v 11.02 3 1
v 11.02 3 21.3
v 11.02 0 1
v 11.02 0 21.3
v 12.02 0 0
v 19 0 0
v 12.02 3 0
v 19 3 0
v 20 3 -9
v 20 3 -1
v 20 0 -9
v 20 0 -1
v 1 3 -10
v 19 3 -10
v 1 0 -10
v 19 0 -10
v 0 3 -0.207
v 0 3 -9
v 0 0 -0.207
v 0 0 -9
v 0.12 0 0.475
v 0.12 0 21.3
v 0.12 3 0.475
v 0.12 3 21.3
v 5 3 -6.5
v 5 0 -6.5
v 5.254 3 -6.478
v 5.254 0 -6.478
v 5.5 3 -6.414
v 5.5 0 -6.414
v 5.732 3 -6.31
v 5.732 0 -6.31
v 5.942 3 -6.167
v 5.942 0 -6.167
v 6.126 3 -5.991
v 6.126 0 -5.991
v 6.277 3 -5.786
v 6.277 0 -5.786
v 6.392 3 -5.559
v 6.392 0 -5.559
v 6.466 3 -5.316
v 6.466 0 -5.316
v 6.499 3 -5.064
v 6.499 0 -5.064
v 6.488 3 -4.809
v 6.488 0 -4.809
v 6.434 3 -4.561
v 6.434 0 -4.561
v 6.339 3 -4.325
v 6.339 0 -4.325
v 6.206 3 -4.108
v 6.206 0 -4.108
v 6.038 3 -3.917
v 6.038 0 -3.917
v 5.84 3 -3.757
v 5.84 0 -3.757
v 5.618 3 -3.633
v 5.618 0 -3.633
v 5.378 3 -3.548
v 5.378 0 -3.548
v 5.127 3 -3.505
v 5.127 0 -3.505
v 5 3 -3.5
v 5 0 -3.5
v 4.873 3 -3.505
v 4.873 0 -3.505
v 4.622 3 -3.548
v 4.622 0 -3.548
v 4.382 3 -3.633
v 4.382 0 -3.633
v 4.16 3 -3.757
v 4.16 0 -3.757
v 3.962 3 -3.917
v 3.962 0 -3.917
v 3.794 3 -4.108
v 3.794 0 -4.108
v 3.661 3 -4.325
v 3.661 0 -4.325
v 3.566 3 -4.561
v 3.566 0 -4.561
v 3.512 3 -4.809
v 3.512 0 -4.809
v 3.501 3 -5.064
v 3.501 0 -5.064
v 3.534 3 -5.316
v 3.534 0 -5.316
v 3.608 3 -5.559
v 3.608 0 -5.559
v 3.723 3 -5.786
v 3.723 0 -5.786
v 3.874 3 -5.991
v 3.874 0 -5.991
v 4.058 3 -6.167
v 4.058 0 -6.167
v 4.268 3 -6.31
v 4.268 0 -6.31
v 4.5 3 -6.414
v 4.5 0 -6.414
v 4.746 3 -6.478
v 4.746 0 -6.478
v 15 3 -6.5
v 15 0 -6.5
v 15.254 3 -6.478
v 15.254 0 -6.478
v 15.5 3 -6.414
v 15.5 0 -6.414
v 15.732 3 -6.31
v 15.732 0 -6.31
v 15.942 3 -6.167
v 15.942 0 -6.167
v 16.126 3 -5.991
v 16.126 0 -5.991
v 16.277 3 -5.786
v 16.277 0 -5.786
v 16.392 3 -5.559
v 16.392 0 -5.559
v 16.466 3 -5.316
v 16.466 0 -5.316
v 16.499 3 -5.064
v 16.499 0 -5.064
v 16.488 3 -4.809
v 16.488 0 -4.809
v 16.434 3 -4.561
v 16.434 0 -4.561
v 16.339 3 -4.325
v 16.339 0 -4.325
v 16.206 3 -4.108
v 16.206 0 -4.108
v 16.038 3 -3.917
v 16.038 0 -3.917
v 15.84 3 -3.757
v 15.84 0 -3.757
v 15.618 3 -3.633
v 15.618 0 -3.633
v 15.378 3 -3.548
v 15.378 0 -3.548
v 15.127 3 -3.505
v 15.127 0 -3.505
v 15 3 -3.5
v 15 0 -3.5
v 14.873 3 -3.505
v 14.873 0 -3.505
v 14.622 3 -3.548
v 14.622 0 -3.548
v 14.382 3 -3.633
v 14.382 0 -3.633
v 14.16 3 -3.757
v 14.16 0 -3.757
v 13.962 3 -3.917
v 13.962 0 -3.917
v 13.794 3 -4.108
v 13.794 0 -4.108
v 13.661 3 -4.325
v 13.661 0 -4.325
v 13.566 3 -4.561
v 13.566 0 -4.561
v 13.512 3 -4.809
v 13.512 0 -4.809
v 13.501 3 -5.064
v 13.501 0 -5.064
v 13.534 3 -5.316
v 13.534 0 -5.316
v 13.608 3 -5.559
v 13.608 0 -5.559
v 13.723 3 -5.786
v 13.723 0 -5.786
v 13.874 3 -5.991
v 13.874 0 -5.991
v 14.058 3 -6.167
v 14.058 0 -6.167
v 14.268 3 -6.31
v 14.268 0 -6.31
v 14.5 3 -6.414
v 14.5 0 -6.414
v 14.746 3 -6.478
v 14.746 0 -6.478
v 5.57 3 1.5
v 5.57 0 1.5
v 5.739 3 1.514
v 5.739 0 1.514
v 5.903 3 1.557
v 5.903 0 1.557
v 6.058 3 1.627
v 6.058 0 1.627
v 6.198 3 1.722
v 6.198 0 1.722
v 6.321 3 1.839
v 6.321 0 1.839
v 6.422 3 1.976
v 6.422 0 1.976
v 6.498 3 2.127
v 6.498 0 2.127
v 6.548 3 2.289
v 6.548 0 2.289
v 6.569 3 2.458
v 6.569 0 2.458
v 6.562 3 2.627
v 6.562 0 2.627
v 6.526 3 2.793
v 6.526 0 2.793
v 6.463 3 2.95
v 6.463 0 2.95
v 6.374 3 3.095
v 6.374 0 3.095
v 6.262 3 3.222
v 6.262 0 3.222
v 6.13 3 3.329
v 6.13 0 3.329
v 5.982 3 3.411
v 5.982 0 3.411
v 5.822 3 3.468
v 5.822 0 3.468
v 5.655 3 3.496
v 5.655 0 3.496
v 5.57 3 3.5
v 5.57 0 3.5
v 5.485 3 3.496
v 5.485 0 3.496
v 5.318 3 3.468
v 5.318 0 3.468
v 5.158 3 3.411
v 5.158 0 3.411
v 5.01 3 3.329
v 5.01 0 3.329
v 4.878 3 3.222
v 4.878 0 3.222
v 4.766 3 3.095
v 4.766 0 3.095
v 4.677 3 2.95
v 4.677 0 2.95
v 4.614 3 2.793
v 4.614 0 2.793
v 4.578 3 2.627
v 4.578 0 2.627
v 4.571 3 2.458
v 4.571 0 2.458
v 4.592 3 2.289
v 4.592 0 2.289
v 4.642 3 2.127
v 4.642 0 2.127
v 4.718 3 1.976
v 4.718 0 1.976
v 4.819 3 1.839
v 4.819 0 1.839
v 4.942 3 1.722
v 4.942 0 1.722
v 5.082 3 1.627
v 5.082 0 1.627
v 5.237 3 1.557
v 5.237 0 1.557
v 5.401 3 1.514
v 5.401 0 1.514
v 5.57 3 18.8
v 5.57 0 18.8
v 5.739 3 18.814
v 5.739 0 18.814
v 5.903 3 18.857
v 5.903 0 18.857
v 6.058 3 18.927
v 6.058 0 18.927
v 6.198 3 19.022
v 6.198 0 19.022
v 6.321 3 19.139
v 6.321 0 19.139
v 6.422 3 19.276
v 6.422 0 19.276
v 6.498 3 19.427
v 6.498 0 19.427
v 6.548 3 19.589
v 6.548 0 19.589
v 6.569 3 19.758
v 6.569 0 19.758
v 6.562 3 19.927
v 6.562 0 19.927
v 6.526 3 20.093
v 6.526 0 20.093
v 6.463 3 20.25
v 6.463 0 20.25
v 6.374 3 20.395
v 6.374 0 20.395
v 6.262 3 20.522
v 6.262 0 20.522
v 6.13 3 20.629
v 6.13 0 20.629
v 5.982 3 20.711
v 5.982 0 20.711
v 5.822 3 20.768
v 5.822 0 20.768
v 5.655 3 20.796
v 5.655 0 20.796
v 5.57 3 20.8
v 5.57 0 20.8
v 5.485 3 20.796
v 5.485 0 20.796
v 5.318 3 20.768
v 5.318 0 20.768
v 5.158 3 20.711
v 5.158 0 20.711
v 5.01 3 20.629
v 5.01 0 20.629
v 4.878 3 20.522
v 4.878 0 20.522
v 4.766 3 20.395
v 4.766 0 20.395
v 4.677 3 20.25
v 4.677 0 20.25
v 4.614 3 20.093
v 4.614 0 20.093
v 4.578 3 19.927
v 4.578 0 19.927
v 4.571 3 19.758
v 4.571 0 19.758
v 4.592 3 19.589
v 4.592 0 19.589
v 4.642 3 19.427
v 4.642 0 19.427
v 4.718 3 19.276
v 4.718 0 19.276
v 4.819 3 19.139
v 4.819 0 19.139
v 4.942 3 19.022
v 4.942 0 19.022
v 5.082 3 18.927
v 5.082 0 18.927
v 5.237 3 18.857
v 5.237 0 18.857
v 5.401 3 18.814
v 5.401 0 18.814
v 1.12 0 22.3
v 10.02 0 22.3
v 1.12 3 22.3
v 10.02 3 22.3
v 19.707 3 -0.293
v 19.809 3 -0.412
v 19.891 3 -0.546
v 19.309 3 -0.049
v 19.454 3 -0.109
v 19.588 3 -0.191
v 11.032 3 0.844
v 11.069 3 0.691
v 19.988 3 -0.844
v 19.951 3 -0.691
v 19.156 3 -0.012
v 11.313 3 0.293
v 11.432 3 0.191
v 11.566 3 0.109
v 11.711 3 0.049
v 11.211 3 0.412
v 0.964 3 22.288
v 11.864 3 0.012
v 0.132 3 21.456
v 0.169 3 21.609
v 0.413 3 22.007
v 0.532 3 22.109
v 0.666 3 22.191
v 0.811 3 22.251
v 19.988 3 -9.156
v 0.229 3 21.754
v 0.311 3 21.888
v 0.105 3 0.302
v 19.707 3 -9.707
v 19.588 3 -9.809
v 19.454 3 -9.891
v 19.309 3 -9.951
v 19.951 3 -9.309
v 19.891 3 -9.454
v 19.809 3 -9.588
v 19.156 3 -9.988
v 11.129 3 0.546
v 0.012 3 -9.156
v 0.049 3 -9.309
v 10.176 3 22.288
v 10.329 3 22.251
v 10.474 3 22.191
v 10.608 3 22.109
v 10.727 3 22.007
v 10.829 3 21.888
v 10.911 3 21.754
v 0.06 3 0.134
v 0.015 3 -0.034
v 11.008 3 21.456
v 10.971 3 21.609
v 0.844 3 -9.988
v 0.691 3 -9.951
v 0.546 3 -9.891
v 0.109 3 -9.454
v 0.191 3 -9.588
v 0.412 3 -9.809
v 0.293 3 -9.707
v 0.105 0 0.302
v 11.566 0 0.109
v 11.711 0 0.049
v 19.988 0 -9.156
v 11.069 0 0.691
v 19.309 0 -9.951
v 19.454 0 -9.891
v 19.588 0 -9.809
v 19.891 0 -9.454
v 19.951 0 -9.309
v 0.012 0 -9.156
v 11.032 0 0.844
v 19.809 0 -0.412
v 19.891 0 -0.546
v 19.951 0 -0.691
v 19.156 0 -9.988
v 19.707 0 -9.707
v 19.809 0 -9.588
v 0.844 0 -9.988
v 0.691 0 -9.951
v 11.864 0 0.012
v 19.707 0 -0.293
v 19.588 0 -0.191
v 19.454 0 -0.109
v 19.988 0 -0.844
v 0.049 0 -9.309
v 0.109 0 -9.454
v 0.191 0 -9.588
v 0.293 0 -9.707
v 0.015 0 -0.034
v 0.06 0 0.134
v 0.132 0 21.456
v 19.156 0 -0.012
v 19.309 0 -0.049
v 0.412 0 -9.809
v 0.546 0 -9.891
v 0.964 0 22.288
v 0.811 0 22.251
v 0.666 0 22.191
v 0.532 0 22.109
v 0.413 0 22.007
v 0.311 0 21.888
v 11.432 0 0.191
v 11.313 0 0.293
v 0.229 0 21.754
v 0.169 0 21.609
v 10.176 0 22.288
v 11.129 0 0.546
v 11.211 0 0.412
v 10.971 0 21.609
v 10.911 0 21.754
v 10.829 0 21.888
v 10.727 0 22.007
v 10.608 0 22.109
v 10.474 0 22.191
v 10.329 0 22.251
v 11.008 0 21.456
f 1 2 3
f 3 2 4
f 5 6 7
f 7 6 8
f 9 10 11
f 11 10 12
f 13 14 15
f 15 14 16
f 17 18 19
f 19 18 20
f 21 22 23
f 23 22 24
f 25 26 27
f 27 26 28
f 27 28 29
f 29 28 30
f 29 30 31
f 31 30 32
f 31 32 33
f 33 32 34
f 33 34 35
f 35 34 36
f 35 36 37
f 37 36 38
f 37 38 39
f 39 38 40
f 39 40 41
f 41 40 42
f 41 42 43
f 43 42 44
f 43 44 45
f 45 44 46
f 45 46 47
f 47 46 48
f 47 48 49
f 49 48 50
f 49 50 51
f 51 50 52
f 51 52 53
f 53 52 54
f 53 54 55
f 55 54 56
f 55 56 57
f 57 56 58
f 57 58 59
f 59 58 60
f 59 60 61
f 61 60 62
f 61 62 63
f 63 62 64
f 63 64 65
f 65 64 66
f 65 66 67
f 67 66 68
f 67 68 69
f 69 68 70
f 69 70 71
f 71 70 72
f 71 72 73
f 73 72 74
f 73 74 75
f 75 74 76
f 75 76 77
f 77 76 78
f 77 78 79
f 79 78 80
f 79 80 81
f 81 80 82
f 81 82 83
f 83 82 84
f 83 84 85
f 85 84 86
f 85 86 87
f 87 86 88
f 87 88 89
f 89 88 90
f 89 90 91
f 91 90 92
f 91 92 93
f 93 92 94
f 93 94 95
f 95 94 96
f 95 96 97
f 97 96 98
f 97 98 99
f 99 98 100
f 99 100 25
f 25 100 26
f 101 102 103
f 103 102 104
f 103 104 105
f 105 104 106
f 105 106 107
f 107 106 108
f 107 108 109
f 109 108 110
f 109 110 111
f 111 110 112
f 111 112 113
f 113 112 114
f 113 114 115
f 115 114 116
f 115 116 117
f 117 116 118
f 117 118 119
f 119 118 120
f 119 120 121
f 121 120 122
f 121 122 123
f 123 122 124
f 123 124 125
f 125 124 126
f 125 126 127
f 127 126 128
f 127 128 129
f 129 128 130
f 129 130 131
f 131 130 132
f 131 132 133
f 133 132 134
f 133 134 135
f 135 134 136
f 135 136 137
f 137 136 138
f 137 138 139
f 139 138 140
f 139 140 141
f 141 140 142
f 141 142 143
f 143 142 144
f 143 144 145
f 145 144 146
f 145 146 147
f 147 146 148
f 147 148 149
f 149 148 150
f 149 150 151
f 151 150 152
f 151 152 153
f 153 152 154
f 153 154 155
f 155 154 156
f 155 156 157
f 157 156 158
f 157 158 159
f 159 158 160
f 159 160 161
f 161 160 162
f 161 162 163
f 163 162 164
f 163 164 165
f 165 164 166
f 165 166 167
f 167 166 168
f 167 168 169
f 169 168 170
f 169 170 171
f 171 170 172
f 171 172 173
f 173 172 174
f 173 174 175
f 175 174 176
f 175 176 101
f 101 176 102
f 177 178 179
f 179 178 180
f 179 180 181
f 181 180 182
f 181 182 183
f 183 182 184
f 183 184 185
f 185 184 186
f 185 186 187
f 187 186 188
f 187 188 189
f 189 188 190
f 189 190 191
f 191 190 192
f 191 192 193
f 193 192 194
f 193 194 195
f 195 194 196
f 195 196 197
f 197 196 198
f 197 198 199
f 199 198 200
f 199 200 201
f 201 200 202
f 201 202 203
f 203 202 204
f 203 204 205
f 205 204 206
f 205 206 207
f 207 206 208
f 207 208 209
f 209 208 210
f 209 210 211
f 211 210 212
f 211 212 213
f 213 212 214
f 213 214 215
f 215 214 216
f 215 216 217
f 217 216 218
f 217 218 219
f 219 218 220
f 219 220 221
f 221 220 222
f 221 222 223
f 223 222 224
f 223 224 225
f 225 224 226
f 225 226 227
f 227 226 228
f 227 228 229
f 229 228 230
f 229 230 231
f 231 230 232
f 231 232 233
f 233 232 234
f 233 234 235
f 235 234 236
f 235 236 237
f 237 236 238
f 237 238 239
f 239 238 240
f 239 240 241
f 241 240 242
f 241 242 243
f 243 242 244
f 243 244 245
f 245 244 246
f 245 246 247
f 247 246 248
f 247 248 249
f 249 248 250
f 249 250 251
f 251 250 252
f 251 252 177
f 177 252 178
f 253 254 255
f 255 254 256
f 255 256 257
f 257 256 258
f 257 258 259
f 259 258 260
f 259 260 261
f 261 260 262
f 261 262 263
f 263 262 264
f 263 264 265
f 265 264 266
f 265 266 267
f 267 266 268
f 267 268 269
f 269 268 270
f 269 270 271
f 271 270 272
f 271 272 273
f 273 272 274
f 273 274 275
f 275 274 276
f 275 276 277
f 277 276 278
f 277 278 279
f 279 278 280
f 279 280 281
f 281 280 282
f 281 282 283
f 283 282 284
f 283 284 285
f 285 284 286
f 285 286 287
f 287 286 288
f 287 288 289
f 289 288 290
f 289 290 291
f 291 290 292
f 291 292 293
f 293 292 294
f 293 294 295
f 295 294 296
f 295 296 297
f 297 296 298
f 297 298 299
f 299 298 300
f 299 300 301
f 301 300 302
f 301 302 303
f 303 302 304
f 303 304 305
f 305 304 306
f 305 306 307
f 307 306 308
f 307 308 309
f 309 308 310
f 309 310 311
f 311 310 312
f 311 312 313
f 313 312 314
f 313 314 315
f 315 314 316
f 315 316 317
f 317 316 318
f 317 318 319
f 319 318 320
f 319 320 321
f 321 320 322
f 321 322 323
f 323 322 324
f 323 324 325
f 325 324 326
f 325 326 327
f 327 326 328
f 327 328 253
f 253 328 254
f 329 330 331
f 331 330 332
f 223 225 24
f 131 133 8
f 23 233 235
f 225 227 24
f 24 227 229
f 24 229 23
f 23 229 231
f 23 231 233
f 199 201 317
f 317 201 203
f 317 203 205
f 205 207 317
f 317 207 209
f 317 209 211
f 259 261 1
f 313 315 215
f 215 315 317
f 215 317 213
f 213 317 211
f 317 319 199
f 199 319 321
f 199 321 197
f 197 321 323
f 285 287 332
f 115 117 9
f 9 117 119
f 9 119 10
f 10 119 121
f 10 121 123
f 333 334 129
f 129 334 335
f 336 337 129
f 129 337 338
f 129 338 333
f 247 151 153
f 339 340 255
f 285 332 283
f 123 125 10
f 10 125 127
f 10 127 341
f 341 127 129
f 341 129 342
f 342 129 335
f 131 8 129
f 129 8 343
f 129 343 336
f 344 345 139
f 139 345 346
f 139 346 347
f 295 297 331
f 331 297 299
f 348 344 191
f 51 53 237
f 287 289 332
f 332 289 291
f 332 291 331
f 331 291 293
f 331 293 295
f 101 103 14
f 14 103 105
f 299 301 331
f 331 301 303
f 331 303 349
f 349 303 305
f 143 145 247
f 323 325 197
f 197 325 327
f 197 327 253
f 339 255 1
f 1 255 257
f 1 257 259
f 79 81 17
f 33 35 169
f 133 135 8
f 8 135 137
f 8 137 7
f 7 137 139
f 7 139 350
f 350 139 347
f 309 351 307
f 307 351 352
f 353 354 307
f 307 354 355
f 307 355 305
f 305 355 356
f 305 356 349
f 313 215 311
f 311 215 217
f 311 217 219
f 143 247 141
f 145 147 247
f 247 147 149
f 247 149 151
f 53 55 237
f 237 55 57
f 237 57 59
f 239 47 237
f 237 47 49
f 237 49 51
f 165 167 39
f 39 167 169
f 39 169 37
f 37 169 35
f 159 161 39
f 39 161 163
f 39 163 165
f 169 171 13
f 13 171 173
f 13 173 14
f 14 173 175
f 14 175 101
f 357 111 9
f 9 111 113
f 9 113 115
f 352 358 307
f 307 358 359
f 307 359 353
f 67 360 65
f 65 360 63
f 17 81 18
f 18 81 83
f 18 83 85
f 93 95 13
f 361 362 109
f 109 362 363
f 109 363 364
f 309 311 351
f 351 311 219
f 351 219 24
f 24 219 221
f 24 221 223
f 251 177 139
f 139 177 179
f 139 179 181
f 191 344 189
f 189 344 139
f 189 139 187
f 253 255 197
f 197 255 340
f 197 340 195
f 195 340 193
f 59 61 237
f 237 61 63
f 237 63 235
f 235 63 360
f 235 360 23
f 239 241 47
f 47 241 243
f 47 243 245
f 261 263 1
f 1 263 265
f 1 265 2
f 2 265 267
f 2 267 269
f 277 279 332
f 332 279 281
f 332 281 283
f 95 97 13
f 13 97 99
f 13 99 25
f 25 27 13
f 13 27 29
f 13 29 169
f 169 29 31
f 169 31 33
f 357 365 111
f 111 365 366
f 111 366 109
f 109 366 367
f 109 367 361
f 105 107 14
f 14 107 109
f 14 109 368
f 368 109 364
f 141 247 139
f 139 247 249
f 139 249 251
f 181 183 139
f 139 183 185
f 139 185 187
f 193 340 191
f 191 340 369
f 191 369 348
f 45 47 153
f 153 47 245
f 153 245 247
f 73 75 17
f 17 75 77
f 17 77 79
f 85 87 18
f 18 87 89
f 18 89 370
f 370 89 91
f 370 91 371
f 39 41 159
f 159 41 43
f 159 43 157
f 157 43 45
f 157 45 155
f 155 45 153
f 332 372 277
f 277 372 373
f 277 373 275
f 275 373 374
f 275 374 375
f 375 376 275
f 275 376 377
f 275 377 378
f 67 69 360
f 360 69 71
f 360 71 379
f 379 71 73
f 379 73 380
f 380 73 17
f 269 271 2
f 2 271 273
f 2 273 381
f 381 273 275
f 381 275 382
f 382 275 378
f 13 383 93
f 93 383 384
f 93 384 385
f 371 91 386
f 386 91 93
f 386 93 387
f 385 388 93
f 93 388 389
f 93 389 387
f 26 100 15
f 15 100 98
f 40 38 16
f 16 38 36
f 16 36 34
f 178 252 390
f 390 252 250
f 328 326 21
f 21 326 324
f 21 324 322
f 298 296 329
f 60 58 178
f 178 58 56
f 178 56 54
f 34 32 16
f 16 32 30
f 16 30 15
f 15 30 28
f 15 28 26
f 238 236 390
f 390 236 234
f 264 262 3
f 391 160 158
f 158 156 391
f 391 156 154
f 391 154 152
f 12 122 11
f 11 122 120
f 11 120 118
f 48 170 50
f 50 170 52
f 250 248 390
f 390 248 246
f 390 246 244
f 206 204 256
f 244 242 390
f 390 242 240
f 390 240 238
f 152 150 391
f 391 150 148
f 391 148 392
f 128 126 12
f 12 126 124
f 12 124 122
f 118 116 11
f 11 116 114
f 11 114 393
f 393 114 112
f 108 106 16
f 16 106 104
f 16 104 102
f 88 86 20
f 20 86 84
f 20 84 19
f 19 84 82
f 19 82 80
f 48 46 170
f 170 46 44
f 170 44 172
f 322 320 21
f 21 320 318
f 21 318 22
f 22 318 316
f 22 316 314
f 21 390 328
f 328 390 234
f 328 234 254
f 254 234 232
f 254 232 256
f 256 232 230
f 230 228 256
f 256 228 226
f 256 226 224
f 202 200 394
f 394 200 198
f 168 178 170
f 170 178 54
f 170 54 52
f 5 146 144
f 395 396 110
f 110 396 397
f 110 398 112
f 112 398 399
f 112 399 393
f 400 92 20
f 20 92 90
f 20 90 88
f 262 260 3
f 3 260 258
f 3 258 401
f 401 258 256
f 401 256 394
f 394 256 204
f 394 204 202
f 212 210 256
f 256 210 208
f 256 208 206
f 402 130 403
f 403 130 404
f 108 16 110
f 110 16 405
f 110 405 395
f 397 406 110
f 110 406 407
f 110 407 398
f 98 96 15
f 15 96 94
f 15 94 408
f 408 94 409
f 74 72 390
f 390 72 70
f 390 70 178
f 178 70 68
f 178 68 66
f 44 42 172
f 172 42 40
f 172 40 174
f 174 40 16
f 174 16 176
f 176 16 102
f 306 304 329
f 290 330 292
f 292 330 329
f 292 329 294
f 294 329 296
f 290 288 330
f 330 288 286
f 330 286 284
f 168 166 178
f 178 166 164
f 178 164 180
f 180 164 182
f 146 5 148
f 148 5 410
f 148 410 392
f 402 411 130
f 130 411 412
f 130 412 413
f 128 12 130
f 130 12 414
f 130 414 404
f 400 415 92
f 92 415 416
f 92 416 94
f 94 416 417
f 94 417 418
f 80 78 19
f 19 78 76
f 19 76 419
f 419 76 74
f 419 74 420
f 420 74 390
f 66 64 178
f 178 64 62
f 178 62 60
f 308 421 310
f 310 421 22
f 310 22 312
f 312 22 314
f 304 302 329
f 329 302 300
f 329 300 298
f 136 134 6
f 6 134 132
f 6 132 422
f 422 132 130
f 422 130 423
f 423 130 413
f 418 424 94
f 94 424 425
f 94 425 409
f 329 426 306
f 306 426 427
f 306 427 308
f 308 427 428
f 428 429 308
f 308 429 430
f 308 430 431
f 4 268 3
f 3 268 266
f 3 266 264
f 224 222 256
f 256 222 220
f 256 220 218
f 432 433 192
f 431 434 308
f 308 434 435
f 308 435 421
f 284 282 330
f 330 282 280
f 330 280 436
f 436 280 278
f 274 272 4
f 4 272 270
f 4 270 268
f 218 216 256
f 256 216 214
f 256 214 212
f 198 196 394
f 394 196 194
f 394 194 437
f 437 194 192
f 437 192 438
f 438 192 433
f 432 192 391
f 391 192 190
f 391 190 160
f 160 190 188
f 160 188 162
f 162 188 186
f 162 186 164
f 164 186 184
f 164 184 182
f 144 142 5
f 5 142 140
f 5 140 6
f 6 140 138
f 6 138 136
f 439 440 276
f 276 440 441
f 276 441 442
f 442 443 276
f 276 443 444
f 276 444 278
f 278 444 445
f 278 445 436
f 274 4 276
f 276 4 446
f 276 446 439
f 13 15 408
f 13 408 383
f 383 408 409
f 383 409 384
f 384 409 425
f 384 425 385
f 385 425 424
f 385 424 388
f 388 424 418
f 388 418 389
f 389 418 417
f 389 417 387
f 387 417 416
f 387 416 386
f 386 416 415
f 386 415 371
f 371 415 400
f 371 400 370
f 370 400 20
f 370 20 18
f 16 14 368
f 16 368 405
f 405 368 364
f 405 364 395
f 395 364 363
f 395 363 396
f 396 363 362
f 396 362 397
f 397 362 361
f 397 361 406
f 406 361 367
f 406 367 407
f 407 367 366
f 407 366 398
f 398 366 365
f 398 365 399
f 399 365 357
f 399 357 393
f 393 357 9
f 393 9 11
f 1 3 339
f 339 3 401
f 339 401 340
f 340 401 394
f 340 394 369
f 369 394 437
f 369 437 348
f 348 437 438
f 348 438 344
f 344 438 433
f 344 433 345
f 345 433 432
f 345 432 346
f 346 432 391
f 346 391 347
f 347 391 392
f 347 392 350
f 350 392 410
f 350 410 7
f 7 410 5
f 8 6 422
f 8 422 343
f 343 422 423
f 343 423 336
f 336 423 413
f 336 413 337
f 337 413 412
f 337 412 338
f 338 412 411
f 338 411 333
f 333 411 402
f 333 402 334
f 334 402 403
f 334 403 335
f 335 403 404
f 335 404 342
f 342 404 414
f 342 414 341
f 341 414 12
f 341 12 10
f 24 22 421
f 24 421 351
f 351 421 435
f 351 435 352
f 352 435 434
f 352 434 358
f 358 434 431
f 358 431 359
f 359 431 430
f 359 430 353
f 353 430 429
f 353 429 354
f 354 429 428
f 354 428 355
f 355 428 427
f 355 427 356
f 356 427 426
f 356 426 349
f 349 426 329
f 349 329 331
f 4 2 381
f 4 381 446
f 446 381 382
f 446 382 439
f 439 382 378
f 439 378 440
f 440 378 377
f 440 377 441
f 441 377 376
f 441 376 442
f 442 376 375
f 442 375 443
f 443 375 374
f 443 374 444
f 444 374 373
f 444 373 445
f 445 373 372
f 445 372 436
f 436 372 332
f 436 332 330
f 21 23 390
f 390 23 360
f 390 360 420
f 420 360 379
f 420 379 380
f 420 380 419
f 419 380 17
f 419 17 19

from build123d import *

# Parameters (mm, degrees)
SKETCH1_R           = 1.5
SKETCH1_R_2         = 1
BOSS_EXTRUDE1_DEPTH = 3
FILLET2_R           = 1
FILLET5_R           = 1
FILLET6_R           = 1


with BuildPart() as part:
    # Sketch1 → Boss-Extrude1 (new body)
    with BuildSketch(Plane(origin=(0, 0, 0), x_dir=(1, 0, 0), z_dir=(0, 1, 0))):
        Polygon((11.02, 0), (20, 0), (20, 10), (0, 10), (0, 0), (0.12, 0), (0.12, -22.3), (11.02, -22.3), align=None)
        with Locations(Location((5, 5, 0), (0, 0, 270))):
            Circle(SKETCH1_R, mode=Mode.SUBTRACT)
        with Locations(Location((15, 5, 0), (0, 0, 270))):
            Circle(SKETCH1_R, mode=Mode.SUBTRACT)
        with Locations(Location((5.57, -2.5, 0), (0, 0, 270))):
            Circle(SKETCH1_R_2, mode=Mode.SUBTRACT)
        with Locations(Location((5.57, -19.8, 0), (0, 0, 270))):
            Circle(SKETCH1_R_2, mode=Mode.SUBTRACT)
    extrude(amount=BOSS_EXTRUDE1_DEPTH)

    # Fillet2
    fillet2_edges = [part.edges().sort_by_distance(p)[0] for p in [
        (11.02, 1.5, 22.3),
        (0.12, 1.5, 22.3),
        (0, 1.5, -10),
        (20, 1.5, -10),
        (20, 1.5, 0),
        (11.02, 1.5, 0),
    ]]
    fillet(fillet2_edges, radius=FILLET2_R)

    # Fillet5
    # the kernel refuses this fillet: 1 mm, written as the material it adds along each edge
    with BuildSketch(Plane(origin=(0.12, 0, 0), x_dir=(0, 0, 1), z_dir=(0, 1, 0))) as fillet5_piece_1:
        with BuildLine():
            CenterArc((0.474973683, -1), FILLET5_R, 90, 28.357636576)
            Line((0, -0.12), (-0.009499474, -0.1024))
            ThreePointArc((-0.009499474, -0.1024), (-0.02, -0.06), (-0.02, 0))
            Line((-0.02, 0), (0, 0.02))
            Line((0, 0.02), (0.474973683, 0.02))
            Line((0.474973683, 0.02), (0.474973683, 0))
        make_face()
    extrude(amount=3)

    # Fillet6
    fillet6_edges = [part.edges().sort_by_distance(p)[0] for p in [
        (0, 1.5, 0),
    ]]
    fillet(fillet6_edges, radius=FILLET6_R)


solid = part.part
